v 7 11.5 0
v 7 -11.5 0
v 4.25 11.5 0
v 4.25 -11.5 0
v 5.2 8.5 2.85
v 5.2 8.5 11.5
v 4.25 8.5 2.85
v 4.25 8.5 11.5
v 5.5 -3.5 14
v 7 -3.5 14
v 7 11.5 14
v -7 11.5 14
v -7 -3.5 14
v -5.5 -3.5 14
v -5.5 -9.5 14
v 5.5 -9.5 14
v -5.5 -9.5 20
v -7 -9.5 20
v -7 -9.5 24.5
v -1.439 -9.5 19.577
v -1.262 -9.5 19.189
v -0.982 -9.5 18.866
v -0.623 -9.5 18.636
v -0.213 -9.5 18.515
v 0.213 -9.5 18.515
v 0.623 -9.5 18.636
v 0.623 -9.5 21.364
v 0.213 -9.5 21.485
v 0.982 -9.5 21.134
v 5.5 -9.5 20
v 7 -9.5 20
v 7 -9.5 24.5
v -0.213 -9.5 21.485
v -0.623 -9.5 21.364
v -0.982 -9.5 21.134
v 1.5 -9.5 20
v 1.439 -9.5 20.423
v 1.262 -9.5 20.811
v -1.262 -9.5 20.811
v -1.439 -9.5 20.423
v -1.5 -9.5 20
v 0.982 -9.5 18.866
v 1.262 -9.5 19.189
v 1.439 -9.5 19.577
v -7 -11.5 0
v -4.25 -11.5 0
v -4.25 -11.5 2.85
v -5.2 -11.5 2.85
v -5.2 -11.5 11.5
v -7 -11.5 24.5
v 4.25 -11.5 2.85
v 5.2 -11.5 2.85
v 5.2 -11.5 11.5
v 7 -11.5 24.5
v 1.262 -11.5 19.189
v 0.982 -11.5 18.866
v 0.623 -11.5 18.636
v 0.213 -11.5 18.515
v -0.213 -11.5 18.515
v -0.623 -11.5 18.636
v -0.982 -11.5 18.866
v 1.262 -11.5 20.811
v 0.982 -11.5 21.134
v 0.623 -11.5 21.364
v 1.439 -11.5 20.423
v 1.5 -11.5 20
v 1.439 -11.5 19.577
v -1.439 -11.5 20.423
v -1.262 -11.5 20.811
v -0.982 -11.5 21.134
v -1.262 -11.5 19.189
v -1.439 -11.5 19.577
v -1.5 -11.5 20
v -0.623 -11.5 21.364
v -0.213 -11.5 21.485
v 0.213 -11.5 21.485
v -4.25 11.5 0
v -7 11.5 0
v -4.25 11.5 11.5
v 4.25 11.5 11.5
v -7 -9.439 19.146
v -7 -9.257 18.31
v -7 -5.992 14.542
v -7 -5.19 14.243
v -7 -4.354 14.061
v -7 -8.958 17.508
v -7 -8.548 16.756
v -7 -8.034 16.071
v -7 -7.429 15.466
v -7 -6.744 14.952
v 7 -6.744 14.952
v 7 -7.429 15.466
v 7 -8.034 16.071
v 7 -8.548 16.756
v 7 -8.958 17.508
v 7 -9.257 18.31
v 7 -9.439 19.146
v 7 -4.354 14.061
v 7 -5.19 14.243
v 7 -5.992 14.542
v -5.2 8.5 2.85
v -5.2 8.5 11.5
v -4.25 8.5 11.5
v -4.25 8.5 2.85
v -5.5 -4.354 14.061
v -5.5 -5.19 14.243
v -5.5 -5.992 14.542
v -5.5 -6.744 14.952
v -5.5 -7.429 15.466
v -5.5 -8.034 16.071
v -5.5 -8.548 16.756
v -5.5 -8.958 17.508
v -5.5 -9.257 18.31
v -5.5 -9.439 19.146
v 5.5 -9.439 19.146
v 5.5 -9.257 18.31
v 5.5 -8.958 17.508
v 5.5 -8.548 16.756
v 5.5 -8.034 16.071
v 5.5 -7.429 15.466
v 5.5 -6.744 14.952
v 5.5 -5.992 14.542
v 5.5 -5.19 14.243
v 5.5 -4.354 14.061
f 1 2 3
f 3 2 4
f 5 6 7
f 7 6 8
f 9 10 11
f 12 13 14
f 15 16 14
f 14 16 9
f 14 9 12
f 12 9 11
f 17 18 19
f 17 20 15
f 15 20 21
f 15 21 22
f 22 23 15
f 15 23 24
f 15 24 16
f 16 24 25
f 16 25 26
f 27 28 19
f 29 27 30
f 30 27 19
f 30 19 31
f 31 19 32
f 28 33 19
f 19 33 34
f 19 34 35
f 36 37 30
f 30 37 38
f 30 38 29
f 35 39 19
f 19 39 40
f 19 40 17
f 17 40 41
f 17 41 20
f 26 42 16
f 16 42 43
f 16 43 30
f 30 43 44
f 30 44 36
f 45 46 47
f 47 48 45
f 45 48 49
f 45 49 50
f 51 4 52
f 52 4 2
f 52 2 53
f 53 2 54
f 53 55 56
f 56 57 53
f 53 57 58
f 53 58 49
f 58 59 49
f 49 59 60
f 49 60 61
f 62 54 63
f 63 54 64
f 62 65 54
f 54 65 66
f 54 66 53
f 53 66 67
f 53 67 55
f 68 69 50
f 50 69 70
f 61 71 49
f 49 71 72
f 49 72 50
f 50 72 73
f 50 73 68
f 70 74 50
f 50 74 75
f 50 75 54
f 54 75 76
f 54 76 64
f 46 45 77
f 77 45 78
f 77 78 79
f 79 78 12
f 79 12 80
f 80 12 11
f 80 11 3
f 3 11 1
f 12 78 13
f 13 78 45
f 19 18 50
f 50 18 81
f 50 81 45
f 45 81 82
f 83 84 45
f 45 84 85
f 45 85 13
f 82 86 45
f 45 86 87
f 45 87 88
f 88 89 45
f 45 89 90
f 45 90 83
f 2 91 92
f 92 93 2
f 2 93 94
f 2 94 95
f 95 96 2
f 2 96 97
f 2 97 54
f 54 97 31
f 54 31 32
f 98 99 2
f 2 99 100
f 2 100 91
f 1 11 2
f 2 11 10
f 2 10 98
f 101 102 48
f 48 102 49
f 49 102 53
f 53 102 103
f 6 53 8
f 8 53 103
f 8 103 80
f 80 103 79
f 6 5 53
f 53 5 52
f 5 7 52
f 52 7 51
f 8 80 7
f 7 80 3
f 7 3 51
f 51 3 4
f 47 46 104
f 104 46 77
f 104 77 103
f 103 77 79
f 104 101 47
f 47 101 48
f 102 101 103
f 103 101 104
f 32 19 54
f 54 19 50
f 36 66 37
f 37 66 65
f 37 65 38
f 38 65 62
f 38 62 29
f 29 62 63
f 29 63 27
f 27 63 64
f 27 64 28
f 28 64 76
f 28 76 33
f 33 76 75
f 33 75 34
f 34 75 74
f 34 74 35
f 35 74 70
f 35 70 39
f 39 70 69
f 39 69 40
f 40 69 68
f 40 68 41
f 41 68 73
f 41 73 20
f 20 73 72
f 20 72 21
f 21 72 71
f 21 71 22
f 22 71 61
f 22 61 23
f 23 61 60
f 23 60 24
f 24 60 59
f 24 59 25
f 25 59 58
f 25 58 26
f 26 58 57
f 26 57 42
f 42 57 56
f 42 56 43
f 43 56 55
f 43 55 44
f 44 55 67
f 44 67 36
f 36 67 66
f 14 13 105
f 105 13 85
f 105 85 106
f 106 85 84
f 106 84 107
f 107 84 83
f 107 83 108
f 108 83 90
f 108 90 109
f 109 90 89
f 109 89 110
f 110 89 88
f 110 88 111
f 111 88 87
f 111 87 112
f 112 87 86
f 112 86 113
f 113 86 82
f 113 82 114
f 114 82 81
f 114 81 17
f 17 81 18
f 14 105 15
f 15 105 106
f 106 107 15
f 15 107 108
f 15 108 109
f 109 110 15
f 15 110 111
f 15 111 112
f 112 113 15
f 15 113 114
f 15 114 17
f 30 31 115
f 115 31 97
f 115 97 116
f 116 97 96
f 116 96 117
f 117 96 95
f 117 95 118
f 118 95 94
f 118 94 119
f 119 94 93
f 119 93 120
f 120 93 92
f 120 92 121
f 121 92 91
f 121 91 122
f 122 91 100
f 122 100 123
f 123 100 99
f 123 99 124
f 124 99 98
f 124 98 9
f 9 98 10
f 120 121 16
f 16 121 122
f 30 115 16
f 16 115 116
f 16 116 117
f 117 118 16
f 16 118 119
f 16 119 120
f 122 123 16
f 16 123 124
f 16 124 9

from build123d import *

# Parameters (mm, degrees)
SKETCH1_W           = 14
SKETCH1_H           = 23
BOSS_EXTRUDE1_DEPTH = 14
SKETCH2_W           = 10.4
SKETCH2_H           = 8.65
SKETCH2_W_2         = 8.5
SKETCH2_H_2         = 2.85
CUT_EXTRUDE1_DEPTH  = 20
SKETCH3_W           = 14
SKETCH3_H           = 10.5
SKETCH3_R           = 1.5
BOSS_EXTRUDE2_DEPTH = 2
BOSS_EXTRUDE3_DEPTH = 1.5
SKETCH5_W           = 8.5
SKETCH5_H           = 11.5
CUT_EXTRUDE2_DEPTH  = 4


with BuildPart() as part:
    # Sketch1 → Boss-Extrude1 (new body)
    with BuildSketch(Plane.XY):
        Rectangle(SKETCH1_W, SKETCH1_H)
    extrude(amount=BOSS_EXTRUDE1_DEPTH)

    # Sketch2 → Cut-Extrude1 (cut)
    with BuildSketch(Plane.XZ.offset(11.5)):
        with Locations((0, 7.175)):
            Rectangle(SKETCH2_W, SKETCH2_H)
        with Locations((0, 1.425)):
            Rectangle(SKETCH2_W_2, SKETCH2_H_2)
    extrude(amount=-CUT_EXTRUDE1_DEPTH, mode=Mode.SUBTRACT)

    # Sketch3 → Boss-Extrude2 (add)
    with BuildSketch(Plane.XZ.offset(11.5)):
        with Locations((0, 19.25)):
            Rectangle(SKETCH3_W, SKETCH3_H)
        with Locations((0, 20)):
            Circle(SKETCH3_R, mode=Mode.SUBTRACT)
    extrude(amount=-BOSS_EXTRUDE2_DEPTH)

    # Sketch4 → Boss-Extrude3 (add)
    with BuildSketch(Plane.ZY.offset(7)):
        with BuildLine():
            Line((14, -3.5), (14, -9.5))
            Line((14, -9.5), (20, -9.5))
            ThreePointArc((20, -9.5), (15.757359313, -7.742640687), (14, -3.5))
        make_face()
    boss_extrude3 = extrude(amount=-BOSS_EXTRUDE3_DEPTH)

    # Mirror1: Boss-Extrude3 across plane
    add(boss_extrude3.mirror(Plane(origin=(0, 0, 0), x_dir=(0, 0, 1), z_dir=(1, 0, 0))))

    # Sketch5 → Cut-Extrude2 (cut, through all)
    with BuildSketch(Plane.XZ.offset(-8.5)):
        with Locations((0, 5.75)):
            Rectangle(SKETCH5_W, SKETCH5_H)
    extrude(amount=-CUT_EXTRUDE2_DEPTH, mode=Mode.SUBTRACT)


solid = part.part
